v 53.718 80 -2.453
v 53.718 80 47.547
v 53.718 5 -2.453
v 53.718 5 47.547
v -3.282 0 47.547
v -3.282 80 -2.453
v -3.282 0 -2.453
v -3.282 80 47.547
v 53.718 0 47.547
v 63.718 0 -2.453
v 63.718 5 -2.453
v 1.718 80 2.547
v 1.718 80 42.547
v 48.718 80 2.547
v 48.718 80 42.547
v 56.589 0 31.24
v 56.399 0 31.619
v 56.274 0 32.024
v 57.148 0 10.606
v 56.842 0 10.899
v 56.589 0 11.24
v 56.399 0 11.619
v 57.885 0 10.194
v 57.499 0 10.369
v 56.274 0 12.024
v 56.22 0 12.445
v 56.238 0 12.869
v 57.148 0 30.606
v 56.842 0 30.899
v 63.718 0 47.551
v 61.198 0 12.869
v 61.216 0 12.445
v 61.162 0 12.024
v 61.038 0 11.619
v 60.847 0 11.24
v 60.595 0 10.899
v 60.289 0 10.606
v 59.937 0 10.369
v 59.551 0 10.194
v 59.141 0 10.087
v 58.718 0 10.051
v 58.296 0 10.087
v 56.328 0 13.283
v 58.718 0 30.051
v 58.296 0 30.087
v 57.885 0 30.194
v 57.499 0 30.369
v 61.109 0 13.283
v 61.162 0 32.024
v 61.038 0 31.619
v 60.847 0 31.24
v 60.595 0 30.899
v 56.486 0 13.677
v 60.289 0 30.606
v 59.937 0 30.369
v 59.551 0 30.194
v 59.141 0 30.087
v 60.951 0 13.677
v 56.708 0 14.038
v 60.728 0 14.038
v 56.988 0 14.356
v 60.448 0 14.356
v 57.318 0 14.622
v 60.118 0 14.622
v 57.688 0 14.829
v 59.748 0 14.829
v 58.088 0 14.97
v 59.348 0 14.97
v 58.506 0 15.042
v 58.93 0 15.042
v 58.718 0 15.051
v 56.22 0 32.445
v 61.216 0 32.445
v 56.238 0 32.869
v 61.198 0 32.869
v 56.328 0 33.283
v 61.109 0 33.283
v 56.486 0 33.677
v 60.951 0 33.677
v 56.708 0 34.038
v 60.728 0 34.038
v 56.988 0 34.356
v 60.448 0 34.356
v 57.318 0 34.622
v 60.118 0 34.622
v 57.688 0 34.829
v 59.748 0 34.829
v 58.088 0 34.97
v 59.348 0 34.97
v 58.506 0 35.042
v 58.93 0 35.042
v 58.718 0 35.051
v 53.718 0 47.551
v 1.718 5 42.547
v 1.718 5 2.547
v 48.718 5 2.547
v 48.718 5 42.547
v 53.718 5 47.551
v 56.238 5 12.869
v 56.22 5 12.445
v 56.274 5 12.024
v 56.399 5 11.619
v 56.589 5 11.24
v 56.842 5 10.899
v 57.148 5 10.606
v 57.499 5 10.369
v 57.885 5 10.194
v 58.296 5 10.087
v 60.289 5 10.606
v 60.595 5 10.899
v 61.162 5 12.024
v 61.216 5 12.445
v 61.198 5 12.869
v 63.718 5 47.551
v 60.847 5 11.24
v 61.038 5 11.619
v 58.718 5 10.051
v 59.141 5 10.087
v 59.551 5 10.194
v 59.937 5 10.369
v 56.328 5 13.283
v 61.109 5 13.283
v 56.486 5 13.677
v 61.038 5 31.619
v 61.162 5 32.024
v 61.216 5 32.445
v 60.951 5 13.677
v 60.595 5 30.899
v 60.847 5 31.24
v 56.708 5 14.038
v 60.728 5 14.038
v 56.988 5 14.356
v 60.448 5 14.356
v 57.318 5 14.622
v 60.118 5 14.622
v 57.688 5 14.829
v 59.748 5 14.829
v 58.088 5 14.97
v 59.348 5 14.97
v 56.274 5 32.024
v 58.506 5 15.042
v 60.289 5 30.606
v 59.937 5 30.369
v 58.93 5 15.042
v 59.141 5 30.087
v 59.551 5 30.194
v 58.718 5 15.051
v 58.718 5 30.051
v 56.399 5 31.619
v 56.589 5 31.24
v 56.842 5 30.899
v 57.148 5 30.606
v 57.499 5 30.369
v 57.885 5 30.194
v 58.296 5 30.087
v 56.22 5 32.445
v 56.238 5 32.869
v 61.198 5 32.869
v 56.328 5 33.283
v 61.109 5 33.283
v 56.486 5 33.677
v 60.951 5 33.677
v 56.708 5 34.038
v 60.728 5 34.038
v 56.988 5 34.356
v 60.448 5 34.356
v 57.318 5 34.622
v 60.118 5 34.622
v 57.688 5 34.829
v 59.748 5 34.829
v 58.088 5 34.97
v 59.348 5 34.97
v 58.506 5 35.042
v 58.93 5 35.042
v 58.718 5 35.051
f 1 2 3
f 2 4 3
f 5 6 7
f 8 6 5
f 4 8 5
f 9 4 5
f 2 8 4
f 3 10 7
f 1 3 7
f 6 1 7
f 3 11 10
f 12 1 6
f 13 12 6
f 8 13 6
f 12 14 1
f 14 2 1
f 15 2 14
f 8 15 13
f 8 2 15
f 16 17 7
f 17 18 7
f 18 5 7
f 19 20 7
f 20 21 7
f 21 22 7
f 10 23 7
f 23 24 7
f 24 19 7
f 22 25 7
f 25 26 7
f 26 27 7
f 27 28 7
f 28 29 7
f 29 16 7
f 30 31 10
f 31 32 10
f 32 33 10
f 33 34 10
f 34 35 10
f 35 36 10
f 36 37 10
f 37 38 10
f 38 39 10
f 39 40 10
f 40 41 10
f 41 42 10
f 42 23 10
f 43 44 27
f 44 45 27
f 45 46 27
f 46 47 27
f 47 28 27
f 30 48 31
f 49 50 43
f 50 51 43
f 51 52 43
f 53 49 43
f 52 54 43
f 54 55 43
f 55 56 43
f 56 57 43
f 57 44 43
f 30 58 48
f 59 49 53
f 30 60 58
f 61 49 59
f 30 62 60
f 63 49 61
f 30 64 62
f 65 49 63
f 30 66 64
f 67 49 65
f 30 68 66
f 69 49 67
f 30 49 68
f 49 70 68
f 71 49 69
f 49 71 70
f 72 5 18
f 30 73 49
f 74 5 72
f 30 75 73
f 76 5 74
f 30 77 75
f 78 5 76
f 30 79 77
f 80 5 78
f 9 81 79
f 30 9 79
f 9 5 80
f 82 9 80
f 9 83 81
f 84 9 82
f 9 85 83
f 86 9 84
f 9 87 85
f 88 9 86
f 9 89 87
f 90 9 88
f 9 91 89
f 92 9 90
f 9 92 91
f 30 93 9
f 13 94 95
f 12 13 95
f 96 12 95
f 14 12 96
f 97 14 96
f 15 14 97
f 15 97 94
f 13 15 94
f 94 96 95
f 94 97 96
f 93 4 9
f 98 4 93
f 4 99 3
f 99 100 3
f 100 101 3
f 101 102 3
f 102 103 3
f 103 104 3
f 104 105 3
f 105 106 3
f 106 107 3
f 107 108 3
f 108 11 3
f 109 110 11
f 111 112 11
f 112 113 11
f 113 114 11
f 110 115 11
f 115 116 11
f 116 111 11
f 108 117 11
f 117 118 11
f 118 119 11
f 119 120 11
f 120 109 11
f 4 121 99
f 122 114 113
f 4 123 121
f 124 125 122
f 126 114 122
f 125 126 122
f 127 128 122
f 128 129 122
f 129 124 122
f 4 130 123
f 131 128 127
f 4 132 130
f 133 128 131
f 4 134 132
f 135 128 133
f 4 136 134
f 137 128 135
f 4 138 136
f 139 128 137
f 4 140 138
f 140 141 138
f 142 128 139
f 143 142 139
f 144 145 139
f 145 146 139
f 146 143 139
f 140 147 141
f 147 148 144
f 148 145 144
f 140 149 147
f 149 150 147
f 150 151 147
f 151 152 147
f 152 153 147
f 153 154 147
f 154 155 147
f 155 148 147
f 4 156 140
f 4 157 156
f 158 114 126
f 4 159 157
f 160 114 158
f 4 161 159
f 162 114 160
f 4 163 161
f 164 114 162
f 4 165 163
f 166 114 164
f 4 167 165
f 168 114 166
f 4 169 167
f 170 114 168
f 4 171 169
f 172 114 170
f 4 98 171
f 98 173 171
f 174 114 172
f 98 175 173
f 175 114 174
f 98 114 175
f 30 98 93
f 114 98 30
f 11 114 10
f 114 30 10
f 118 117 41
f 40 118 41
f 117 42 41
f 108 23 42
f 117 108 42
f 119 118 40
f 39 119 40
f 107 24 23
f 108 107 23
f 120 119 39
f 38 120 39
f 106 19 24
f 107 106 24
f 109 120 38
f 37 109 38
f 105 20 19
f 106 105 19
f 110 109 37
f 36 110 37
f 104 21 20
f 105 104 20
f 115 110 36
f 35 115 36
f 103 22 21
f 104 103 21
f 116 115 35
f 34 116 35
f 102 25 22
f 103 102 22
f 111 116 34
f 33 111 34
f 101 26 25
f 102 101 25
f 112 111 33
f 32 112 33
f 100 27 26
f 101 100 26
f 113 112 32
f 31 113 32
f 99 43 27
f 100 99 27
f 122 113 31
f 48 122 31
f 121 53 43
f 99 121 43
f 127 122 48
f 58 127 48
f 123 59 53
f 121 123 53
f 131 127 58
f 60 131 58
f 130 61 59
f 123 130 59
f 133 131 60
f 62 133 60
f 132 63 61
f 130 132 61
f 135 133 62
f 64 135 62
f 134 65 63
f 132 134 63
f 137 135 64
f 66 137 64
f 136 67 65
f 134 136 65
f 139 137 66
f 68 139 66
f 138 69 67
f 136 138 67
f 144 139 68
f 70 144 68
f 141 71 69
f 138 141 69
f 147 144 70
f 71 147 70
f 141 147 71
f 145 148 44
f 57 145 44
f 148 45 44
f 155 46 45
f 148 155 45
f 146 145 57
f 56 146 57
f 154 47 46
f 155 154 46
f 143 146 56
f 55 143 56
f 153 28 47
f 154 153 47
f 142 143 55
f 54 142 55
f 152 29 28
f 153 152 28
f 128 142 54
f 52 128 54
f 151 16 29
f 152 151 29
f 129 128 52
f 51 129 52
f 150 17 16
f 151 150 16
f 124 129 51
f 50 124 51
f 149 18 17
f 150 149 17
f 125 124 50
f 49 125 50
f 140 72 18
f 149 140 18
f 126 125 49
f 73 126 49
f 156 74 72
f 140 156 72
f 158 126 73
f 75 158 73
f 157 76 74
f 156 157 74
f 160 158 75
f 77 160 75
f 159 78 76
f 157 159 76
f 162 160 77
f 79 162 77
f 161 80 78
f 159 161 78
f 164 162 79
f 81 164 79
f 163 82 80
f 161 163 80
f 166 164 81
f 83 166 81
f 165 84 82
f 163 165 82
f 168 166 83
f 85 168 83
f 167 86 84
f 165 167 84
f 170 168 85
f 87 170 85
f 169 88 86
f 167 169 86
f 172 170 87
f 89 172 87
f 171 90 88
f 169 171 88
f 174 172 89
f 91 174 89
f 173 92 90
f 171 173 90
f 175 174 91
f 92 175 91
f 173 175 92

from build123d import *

# Parameters (mm, degrees)
SKETCH1_W           = 57
SKETCH1_H           = 50
BOSS_EXTRUDE1_DEPTH = 80
SKETCH2_W           = 47
SKETCH2_H           = 40
CUT_EXTRUDE1_DEPTH  = 75
SKETCH3_W           = 10
SKETCH3_H           = 50.004105979
SKETCH3_R           = 2.5
BOSS_EXTRUDE2_DEPTH = 5


with BuildPart() as part:
    # Sketch1 → Boss-Extrude1 (new body)
    with BuildSketch(Plane(origin=(0, 0, 0), x_dir=(1, 0, 0), z_dir=(0, 1, 0))):
        with Locations((25.218232044, -22.546961326)):
            Rectangle(SKETCH1_W, SKETCH1_H)
    extrude(amount=BOSS_EXTRUDE1_DEPTH)

    # Sketch2 → Cut-Extrude1 (cut)
    with BuildSketch(Plane(origin=(0, 80, 0), x_dir=(1, 0, 0), z_dir=(0, 1, 0))):
        with Locations((25.218232044, -22.546961326)):
            Rectangle(SKETCH2_W, SKETCH2_H)
    extrude(amount=-CUT_EXTRUDE1_DEPTH, mode=Mode.SUBTRACT)

    # Sketch3 → Boss-Extrude2 (add)
    with BuildSketch(Plane(origin=(0, 0, 0), x_dir=(1, 0, 0), z_dir=(0, 1, 0))):
        with Locations((58.718232044, -22.549014316)):
            Rectangle(SKETCH3_W, SKETCH3_H)
        with Locations((58.718232044, -12.551067305)):
            Circle(SKETCH3_R, mode=Mode.SUBTRACT)
        with Locations((58.718232044, -32.551067305)):
            Circle(SKETCH3_R, mode=Mode.SUBTRACT)
    extrude(amount=BOSS_EXTRUDE2_DEPTH)


solid = part.part
